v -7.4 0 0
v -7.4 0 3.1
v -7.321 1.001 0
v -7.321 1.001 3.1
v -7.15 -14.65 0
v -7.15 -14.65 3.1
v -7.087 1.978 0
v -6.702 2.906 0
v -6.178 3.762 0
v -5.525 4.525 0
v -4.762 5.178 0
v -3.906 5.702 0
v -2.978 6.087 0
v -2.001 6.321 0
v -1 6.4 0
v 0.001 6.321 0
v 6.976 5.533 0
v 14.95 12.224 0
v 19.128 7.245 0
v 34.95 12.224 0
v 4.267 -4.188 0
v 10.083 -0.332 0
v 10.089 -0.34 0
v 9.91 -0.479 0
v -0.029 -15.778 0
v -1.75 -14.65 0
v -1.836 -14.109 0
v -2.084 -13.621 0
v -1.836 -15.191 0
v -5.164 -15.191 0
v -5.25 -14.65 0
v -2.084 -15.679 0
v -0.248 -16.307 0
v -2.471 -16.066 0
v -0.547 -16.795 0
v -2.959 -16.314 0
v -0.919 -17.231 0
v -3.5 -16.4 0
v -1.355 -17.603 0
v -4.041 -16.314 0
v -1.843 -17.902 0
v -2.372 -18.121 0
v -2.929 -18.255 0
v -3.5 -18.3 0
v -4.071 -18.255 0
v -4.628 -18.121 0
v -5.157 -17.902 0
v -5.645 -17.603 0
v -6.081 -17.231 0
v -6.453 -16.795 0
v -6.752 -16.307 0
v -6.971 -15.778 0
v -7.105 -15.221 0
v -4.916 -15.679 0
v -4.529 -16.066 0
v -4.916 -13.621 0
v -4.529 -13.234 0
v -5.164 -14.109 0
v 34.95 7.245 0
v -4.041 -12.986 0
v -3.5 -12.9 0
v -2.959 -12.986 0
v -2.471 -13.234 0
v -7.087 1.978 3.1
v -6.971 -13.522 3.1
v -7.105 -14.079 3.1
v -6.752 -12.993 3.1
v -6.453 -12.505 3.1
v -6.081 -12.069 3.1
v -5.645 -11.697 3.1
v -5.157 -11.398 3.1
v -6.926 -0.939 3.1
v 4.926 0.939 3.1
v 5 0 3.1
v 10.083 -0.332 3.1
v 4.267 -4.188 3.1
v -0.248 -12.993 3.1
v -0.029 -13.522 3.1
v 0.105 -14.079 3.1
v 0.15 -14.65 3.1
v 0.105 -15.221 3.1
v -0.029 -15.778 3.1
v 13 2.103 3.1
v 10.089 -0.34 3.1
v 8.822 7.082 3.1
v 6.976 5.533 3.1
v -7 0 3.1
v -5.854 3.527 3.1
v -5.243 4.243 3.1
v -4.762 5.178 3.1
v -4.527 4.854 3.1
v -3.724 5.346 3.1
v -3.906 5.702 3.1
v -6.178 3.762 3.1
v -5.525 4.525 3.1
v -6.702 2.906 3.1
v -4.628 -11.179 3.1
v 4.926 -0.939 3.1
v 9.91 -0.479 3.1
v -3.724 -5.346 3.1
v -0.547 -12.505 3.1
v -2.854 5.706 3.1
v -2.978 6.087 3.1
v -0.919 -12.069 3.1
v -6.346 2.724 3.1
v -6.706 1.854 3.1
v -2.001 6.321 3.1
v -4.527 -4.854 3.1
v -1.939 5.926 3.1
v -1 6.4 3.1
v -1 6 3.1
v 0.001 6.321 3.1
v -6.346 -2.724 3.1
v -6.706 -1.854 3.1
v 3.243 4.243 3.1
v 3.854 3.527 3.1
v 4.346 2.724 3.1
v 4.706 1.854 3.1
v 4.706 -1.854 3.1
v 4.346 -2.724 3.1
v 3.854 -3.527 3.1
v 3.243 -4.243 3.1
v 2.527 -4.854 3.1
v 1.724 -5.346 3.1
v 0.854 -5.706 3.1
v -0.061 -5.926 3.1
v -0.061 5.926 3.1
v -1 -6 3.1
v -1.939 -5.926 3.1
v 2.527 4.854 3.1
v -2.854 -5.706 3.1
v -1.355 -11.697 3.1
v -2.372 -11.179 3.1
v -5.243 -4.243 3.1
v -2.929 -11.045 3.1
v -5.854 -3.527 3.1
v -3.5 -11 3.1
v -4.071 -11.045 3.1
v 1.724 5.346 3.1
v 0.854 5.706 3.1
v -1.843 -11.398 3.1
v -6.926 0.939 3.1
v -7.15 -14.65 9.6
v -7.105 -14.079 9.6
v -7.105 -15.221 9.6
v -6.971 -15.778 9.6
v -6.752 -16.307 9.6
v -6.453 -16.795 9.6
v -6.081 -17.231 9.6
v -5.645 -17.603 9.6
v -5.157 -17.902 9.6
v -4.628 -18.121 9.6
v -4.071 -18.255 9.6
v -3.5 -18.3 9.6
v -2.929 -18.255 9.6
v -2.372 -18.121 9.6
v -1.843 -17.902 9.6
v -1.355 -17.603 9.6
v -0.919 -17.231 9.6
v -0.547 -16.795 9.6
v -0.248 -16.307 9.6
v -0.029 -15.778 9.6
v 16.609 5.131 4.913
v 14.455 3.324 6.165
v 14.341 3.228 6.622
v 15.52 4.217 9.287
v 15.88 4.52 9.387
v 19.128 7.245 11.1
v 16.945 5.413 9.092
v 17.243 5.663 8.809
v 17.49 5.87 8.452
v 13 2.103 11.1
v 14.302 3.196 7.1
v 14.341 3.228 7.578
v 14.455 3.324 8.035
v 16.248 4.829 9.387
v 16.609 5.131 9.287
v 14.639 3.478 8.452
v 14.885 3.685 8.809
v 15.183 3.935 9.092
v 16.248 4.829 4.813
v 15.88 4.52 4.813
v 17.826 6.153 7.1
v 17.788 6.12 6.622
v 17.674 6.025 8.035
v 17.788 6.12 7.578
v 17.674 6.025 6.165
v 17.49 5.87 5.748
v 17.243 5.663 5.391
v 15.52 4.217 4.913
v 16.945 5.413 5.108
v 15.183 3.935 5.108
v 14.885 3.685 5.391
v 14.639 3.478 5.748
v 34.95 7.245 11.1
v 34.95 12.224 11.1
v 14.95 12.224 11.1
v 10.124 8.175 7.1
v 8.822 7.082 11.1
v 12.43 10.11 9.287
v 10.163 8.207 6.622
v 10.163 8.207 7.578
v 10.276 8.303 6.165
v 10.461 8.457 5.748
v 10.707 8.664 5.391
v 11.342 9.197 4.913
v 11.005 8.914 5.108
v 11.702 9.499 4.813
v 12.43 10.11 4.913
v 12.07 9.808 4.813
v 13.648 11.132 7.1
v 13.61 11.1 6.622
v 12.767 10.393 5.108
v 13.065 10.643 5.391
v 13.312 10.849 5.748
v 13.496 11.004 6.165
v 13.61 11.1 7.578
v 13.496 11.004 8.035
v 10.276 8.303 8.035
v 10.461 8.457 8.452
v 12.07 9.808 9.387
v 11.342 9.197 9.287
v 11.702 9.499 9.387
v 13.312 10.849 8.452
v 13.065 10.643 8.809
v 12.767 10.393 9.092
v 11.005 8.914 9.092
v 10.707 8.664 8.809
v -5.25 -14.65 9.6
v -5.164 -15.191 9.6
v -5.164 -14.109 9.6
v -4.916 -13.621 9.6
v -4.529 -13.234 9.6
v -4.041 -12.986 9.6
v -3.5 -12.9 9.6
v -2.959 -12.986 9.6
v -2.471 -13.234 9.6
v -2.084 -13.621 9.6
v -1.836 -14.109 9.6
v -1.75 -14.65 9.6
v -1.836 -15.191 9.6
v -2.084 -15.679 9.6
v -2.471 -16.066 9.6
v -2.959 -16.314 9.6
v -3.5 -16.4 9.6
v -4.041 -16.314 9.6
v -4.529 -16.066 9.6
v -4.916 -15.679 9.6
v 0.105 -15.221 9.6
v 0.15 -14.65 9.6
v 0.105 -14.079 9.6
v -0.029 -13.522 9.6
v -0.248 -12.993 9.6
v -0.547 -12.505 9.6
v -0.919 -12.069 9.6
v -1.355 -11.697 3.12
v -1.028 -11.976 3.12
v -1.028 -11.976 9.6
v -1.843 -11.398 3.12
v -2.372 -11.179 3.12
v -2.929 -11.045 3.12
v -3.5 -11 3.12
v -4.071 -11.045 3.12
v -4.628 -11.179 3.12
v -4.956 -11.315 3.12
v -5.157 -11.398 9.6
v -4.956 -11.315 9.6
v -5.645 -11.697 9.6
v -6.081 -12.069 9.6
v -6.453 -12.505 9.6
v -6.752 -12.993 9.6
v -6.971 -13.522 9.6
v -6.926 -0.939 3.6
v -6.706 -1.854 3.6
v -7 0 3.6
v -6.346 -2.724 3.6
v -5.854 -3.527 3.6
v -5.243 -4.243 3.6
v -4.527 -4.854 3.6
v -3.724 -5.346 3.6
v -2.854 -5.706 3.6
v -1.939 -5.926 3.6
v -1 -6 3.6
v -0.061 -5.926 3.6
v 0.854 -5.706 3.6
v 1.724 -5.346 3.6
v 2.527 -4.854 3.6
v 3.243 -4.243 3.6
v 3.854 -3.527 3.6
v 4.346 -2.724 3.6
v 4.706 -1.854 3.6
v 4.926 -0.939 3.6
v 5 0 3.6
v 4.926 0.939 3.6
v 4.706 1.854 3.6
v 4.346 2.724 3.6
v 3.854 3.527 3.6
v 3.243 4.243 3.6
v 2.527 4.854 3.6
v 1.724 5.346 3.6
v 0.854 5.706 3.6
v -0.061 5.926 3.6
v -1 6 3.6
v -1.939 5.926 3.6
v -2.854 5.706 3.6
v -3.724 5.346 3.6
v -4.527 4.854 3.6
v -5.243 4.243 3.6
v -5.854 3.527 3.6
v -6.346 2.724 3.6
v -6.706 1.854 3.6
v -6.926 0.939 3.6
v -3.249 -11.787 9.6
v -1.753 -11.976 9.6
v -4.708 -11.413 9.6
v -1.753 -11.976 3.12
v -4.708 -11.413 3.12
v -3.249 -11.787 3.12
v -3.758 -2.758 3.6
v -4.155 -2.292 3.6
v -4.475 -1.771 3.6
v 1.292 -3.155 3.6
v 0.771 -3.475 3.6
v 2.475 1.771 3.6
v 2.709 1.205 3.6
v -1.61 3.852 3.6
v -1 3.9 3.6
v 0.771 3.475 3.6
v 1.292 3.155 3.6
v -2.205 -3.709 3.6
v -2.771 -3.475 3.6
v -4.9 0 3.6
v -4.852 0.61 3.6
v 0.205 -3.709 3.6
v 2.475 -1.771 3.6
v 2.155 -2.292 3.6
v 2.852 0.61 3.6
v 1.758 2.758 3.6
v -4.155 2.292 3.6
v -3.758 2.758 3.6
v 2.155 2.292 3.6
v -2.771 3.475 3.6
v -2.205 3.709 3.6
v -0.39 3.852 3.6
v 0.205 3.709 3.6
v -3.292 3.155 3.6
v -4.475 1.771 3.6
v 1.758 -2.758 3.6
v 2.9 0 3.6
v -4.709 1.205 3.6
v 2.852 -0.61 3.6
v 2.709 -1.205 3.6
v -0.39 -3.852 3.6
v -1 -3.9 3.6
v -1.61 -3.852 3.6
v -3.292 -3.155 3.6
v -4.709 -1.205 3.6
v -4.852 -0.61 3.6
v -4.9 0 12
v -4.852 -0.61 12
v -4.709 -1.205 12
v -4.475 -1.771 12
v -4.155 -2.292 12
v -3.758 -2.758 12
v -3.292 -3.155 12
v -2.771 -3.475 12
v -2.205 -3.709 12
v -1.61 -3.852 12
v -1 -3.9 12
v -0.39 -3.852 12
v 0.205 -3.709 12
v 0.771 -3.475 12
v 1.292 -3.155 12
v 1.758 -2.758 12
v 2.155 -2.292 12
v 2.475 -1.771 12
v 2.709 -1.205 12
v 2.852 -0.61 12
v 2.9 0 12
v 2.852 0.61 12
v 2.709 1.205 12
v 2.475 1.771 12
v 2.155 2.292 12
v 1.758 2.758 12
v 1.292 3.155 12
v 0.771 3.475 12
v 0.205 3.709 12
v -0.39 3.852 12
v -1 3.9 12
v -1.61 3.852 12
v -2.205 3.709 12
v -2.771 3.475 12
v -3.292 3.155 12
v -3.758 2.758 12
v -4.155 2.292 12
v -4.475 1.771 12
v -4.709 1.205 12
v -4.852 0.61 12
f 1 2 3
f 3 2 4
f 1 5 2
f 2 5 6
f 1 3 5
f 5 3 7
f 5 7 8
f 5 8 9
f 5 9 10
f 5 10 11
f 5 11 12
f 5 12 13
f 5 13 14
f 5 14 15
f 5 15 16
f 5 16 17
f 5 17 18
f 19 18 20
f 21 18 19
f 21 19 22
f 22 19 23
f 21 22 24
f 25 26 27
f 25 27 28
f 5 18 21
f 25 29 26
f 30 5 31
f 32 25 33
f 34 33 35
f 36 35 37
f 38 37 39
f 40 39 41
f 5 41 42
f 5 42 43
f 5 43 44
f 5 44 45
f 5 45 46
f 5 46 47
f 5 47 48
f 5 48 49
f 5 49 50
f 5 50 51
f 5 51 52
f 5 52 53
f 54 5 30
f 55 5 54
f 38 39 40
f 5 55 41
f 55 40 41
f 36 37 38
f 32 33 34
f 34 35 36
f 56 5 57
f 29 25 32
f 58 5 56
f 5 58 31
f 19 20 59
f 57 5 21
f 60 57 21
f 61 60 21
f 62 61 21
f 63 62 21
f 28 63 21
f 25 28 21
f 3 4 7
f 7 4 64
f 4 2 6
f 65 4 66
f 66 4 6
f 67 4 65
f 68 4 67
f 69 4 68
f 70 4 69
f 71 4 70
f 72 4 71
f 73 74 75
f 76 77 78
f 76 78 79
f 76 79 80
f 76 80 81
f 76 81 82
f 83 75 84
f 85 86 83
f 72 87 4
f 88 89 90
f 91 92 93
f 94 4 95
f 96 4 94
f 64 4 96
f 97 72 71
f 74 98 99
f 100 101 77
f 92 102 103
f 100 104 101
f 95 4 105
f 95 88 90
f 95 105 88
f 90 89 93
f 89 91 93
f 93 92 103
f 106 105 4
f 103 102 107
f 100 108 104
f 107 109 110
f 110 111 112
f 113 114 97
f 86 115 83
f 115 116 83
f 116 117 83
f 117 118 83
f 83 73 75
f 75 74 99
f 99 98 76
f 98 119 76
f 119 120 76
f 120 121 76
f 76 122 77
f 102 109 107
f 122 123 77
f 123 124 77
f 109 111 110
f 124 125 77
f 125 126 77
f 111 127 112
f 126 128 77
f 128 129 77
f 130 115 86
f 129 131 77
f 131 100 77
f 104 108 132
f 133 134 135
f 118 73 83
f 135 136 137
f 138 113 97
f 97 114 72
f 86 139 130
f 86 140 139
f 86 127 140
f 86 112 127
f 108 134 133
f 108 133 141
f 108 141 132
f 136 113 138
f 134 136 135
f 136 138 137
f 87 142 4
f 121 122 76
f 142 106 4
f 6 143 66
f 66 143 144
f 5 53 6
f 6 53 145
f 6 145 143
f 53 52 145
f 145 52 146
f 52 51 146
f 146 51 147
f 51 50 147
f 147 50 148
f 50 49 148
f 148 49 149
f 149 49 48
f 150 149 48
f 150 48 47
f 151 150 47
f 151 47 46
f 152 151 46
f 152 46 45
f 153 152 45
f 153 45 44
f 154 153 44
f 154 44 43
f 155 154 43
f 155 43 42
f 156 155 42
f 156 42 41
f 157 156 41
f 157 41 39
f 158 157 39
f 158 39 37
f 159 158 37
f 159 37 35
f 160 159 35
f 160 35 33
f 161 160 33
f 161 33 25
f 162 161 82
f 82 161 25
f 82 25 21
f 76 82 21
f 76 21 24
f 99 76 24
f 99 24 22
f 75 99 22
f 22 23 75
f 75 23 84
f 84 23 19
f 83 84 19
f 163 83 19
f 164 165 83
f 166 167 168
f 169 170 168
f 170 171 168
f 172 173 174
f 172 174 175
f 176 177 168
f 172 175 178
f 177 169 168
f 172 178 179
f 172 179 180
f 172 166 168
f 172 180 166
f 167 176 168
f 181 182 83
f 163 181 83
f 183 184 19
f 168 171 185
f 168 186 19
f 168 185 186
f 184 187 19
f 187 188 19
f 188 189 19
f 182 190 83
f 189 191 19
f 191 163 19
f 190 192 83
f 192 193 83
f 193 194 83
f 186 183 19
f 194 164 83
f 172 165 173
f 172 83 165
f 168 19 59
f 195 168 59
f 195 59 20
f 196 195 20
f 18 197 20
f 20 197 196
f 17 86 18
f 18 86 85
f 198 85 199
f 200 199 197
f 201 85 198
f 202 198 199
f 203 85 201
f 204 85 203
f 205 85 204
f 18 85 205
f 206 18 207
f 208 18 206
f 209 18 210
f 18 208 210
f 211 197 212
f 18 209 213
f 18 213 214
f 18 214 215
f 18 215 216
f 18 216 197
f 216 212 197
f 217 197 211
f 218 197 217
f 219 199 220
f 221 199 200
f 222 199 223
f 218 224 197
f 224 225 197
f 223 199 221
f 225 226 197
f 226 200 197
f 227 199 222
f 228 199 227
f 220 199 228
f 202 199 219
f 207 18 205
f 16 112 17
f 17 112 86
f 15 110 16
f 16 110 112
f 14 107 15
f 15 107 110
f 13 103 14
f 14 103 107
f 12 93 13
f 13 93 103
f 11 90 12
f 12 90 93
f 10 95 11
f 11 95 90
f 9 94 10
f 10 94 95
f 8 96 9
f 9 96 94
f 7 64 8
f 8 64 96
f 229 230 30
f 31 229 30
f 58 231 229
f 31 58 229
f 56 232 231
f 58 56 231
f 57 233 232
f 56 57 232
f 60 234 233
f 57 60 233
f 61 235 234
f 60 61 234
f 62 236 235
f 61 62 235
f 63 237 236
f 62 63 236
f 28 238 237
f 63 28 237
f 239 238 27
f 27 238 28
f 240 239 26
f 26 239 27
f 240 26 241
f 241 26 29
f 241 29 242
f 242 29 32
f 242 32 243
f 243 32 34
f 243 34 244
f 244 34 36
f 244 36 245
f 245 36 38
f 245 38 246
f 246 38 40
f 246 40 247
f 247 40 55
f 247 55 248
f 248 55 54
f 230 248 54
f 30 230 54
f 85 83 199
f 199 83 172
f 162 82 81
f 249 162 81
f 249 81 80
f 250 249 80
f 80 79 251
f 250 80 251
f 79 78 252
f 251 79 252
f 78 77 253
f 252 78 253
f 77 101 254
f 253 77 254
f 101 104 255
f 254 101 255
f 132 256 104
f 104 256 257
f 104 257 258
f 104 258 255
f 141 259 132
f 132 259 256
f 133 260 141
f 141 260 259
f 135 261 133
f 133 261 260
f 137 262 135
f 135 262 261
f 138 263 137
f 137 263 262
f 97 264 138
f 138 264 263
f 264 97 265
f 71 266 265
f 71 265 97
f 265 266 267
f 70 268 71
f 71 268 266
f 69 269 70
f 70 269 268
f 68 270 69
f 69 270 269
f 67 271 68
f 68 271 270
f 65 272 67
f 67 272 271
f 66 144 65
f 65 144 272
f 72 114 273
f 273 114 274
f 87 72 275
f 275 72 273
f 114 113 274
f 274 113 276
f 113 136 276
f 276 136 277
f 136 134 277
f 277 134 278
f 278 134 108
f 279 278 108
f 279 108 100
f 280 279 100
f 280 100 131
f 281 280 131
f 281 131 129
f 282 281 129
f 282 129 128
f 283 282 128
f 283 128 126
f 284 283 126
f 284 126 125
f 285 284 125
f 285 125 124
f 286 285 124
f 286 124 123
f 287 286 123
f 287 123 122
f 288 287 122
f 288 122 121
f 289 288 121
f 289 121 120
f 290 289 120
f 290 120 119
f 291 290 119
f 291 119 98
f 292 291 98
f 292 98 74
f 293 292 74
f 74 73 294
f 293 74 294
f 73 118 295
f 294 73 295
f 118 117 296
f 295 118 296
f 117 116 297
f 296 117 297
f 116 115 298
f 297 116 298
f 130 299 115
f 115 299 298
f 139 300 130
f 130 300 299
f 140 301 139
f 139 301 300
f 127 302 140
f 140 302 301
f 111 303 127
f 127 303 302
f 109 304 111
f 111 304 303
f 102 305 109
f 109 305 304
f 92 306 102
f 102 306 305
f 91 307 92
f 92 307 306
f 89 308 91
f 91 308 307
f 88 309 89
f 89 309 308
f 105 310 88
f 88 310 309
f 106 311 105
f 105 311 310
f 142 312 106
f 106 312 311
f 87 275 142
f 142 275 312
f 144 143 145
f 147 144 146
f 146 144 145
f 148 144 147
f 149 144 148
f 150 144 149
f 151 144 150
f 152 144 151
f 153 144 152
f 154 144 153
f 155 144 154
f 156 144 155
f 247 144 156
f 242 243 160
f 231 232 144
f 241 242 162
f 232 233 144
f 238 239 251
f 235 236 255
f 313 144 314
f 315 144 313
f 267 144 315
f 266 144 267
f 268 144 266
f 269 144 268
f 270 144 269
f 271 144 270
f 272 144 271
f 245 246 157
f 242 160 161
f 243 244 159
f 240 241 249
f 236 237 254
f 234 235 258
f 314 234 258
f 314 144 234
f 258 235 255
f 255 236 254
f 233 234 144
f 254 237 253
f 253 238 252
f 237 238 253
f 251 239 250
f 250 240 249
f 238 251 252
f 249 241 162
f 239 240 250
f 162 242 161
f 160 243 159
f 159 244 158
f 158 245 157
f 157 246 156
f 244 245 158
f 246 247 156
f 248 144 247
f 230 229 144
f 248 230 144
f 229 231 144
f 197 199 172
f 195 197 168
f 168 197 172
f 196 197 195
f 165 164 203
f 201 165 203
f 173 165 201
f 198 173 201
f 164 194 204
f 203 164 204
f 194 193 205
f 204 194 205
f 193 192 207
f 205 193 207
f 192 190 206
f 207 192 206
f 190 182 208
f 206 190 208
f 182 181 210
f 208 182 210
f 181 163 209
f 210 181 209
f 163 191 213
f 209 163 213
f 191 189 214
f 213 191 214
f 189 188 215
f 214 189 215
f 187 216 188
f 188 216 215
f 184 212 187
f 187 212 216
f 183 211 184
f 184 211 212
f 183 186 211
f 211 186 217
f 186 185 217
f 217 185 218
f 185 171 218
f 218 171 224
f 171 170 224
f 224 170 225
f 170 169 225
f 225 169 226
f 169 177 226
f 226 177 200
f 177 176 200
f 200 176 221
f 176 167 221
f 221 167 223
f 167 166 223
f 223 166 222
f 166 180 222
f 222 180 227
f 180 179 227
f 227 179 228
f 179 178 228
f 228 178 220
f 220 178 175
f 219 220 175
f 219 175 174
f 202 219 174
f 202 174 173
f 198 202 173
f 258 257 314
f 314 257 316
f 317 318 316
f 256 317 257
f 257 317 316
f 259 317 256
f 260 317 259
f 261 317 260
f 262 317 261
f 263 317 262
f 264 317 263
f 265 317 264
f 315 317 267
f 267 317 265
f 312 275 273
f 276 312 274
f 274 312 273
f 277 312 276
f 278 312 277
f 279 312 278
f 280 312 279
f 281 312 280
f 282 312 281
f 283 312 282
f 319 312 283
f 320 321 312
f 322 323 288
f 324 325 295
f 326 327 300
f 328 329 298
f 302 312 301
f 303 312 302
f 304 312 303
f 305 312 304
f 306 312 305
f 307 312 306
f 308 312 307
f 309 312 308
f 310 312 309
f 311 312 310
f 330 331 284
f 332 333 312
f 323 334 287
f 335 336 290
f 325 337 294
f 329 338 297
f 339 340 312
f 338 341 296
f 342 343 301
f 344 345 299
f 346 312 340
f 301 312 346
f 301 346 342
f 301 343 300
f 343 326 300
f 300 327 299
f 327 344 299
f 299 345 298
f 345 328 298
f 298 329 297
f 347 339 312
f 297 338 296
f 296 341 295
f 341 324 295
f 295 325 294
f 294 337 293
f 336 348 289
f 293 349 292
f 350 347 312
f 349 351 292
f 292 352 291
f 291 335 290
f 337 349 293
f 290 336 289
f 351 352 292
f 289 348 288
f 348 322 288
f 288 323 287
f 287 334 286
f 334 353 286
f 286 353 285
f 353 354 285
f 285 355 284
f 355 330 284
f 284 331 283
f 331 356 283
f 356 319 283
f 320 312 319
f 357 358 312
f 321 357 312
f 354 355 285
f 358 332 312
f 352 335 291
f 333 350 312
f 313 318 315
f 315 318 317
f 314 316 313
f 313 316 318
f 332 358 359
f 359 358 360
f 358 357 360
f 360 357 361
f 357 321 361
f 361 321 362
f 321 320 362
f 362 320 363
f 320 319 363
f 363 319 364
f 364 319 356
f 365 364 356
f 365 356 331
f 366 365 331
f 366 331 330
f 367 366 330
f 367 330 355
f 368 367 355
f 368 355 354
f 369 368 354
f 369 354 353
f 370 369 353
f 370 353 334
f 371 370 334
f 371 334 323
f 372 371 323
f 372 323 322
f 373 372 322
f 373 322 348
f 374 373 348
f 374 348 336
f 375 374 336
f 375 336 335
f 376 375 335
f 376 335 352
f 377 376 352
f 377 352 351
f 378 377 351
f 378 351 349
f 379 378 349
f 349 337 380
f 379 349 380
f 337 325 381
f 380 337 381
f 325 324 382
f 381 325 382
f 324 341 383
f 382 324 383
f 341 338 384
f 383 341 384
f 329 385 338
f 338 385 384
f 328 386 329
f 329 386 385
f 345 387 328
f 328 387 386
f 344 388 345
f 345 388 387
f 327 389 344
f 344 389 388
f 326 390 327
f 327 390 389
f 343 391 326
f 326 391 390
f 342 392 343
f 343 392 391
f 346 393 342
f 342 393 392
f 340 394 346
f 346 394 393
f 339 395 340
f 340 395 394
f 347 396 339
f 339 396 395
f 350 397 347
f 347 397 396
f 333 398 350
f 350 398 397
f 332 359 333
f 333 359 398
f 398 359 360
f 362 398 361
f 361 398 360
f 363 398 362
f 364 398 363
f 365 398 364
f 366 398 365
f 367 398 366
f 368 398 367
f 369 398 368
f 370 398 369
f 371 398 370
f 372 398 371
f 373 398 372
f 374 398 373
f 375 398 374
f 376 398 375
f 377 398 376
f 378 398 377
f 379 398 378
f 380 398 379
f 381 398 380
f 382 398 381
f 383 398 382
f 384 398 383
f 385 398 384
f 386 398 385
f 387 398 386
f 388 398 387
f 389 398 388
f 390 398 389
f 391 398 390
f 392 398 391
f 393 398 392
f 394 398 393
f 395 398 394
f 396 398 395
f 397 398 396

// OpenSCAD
//color([0.5,0,0,0.2])translate([-5.5,-3])import("Tito_Extruder_V3_-_Armextended.stl");

//translate ([6,6,2])cylinder(r=8/2,h=10,$fn=50);


arm_width = 6.5;
base_pos = [-1,0,0];
module arm_part(){
translate([-arm_width/2,0]){
  difference(){
  union(){
  cube([arm_width,11.8,3.1]);
  translate([0,11.8-8])cube([arm_width,8,11.1]);
  translate([0,11.8])rotate([0,0,-40])cube([arm_width*cos(40),20,11.1]);
  }
    translate([-1,11.8-4,(11.1+3.1)/2]) 
    rotate([0,0,90])
     rotate([90,0,0])
     cylinder(r=4.6/2,h=20,$fn=30);
  }
  
}
}

module idler_arm_base(base_circle = [0,0,0],m3nut = false){
hull(){
translate(base_circle)cylinder(r=12.8/2,h=3.1,$fn=40);
translate([-3.5,-14.65])cylinder(r=7.3/2,h=3.1,$fn=40);
}
hull(){
translate(base_circle)cylinder(r=12.8/2,h=3.1,$fn=40);
translate([8,2.15])cylinder(r=arm_width/2,h=3.1,$fn=40);
}

translate([8,2.15])rotate([0,0,-50])arm_part();


if(m3nut == true)
 translate([-3.5,-14.65])cylinder(r=7.3/2,h=12-2.4,$fn=40);
else
 translate([-3.5,-14.65])cylinder(r=7.3/2,h=12,$fn=40);
 
translate(base_circle)cylinder(r=12/2,h=3.1+0.5,$fn=40);
translate(base_circle)cylinder(r=7.8/2,h=12,$fn=40);

}

module idler_arm_holes(base_circle = [0,0,0]){
translate([-3.5,-14.65,-1])cylinder(r=3.5/2,h=14,$fn=20);
translate(base_circle)
difference(){
  translate([0,0,3.12])cylinder(r=24/2,h=14,$fn=50);
  translate([0,0,3.12])cylinder(r=13/2,h=14,$fn=50);
}
}

difference(){
idler_arm_base(base_pos,true);
idler_arm_holes(base_pos);
}
